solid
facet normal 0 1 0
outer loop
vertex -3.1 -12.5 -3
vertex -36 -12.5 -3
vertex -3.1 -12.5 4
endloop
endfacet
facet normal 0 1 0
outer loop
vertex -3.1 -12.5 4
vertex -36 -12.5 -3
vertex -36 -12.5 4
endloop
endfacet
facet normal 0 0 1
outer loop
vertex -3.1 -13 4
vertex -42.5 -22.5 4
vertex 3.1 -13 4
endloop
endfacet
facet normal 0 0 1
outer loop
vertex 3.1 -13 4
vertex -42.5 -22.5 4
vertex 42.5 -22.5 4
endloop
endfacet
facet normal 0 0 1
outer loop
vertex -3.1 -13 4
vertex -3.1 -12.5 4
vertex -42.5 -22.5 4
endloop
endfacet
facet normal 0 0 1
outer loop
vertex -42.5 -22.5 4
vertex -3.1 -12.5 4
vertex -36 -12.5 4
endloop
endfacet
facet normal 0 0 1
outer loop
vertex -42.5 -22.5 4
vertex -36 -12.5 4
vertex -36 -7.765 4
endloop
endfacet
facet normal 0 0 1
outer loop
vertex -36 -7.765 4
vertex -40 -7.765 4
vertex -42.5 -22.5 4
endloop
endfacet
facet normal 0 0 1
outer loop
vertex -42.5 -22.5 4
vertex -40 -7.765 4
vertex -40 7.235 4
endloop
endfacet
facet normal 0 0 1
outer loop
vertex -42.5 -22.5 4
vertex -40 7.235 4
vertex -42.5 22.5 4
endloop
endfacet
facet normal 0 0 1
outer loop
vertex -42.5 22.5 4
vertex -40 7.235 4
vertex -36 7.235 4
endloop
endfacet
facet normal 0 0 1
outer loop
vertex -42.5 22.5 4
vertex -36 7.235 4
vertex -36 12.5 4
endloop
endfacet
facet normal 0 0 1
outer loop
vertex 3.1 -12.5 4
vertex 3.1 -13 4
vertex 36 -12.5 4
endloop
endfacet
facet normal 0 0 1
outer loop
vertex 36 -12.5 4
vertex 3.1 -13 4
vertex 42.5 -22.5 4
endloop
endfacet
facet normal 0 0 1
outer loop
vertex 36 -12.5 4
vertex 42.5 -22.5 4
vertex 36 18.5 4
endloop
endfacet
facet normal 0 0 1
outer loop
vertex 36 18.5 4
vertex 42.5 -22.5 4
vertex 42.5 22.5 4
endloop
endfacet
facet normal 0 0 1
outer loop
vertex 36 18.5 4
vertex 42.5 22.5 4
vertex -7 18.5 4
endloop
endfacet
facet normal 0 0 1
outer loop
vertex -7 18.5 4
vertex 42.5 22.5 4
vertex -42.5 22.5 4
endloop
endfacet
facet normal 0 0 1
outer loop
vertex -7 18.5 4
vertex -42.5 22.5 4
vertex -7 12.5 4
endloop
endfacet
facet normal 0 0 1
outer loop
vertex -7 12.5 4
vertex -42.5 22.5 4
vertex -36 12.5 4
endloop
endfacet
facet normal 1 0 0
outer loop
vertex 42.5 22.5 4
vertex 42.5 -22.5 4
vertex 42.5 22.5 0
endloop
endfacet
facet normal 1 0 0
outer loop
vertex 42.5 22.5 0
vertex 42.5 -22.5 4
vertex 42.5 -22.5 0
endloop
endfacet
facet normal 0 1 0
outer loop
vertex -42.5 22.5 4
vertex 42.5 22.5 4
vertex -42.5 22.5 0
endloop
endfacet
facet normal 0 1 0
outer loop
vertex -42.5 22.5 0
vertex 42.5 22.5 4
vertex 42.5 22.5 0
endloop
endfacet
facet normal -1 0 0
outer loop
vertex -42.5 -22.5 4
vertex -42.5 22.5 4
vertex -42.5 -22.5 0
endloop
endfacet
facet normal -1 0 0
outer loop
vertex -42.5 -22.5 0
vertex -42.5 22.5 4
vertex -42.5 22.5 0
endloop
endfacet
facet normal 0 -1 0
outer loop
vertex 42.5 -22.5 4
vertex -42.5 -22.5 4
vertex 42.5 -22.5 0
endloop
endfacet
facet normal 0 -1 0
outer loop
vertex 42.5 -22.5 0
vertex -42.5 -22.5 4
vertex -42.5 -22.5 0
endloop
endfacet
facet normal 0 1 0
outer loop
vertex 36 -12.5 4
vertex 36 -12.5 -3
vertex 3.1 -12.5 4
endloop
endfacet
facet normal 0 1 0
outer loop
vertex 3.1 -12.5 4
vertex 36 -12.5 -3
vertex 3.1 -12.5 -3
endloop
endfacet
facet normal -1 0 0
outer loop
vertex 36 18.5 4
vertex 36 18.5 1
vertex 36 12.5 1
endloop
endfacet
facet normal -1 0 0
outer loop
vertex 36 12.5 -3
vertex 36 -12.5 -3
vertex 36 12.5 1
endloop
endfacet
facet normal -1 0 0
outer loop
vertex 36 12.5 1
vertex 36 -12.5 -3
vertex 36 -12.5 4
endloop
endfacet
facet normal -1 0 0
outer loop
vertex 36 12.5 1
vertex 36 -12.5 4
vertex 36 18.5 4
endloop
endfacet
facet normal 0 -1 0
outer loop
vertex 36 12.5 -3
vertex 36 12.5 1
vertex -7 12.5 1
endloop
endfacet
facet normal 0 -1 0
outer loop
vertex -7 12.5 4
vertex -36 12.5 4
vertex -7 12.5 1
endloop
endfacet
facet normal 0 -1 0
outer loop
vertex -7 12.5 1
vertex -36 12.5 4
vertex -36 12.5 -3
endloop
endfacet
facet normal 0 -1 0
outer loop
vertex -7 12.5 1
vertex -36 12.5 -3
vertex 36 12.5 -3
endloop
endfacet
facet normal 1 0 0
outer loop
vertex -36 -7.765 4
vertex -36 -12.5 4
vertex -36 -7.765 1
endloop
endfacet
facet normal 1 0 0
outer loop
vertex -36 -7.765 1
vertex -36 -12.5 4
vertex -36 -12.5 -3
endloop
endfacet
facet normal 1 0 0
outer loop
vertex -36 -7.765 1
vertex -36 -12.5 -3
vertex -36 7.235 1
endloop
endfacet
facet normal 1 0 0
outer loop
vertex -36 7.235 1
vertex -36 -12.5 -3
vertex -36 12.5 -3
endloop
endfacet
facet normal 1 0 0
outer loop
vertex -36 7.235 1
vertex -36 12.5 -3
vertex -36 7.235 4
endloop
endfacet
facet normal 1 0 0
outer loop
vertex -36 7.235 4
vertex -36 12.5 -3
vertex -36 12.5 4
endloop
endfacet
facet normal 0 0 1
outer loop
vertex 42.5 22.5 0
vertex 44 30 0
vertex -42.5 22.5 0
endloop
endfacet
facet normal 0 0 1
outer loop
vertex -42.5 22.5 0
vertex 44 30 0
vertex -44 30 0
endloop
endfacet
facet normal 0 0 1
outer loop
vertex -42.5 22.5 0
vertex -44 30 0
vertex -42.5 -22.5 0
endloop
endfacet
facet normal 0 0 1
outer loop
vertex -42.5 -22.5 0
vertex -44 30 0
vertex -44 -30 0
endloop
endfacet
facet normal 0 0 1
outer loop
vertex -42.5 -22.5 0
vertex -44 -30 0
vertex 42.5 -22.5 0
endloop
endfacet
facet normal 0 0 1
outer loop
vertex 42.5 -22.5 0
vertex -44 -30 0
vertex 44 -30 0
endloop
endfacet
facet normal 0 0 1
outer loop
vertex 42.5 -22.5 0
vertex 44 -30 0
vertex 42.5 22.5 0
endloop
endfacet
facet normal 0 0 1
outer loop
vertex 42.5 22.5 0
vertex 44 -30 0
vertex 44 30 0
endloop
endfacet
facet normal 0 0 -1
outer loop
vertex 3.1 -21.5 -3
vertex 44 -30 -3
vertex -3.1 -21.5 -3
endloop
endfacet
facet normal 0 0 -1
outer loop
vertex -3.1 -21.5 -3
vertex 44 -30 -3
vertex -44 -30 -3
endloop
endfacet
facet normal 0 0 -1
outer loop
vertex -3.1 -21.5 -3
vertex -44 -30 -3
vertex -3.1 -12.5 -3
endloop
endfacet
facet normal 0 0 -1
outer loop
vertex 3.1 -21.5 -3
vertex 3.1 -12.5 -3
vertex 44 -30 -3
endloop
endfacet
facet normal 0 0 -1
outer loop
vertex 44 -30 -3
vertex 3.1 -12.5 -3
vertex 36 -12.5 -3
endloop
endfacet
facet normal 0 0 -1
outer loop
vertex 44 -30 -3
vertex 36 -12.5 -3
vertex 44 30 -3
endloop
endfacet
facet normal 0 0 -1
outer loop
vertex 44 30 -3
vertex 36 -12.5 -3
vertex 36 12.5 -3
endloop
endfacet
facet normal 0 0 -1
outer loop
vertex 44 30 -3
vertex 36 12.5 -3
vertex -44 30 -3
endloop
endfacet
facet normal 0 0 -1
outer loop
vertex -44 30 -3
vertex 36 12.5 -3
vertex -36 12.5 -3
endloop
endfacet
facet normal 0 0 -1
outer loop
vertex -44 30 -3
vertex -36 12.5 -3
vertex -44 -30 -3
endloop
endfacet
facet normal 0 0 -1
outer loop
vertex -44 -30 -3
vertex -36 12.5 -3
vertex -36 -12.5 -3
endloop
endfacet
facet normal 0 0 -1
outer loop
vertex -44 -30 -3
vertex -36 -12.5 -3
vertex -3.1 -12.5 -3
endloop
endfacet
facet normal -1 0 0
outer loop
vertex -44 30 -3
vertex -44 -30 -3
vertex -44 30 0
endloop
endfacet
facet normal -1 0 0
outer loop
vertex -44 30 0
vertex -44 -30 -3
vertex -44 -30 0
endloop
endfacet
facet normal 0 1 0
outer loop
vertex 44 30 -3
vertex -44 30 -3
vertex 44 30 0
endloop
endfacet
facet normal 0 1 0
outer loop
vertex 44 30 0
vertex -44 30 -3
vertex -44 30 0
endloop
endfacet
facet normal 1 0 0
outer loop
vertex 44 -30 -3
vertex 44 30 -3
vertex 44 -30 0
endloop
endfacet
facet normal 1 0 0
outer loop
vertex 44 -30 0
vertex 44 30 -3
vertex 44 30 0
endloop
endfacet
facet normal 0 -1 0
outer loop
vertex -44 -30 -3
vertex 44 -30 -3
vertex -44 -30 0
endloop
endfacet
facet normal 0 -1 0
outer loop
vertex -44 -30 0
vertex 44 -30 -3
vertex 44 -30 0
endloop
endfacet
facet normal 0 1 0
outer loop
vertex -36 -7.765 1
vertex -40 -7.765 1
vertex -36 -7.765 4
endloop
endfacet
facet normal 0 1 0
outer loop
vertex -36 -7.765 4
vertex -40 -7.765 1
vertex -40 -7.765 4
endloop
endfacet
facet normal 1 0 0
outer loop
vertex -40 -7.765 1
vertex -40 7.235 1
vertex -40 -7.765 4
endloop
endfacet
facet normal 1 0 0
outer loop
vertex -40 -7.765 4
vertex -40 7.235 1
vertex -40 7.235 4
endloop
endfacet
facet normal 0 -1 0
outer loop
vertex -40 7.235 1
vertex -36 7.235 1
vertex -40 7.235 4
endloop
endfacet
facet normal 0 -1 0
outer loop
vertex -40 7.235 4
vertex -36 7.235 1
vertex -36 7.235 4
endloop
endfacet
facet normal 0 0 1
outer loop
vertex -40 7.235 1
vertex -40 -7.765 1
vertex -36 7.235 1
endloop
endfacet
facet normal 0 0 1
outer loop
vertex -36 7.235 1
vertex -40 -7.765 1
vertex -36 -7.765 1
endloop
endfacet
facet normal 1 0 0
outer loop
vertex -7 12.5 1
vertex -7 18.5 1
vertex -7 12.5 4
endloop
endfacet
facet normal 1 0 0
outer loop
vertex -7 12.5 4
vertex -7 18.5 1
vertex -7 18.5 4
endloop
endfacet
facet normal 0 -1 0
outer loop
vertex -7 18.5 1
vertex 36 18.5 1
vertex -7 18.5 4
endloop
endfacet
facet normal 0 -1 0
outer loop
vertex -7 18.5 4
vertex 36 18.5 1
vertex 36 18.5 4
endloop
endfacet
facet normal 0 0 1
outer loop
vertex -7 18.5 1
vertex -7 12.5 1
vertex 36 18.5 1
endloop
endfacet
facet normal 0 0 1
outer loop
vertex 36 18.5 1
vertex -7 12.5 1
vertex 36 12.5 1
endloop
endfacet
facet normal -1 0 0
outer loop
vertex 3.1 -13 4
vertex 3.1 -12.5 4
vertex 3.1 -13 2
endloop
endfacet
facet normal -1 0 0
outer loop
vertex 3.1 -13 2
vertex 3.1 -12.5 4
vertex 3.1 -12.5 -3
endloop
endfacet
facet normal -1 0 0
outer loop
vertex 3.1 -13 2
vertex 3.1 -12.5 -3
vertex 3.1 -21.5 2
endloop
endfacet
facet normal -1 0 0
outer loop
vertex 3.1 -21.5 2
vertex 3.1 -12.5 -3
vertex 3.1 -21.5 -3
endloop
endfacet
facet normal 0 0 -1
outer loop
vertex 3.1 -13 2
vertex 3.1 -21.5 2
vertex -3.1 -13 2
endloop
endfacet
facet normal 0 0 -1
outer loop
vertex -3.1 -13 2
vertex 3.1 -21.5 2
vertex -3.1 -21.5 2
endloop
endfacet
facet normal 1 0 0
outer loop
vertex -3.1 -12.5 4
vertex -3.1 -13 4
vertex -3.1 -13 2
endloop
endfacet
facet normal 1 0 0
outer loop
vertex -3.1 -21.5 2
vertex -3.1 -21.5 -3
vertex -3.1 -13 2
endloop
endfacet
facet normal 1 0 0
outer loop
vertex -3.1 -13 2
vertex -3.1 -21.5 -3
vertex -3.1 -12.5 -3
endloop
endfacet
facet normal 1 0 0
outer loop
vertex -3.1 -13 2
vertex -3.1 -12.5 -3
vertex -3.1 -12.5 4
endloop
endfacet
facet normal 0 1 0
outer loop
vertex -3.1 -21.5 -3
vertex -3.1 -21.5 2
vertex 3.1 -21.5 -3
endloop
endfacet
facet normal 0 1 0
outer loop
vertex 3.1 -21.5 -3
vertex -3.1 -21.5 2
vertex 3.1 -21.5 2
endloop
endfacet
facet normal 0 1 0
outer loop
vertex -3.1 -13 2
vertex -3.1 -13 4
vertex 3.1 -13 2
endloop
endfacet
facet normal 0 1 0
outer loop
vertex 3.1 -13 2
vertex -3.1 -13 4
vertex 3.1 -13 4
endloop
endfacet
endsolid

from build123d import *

# Parameters (mm, degrees)
SKETCH5_W           = 85
SKETCH5_H           = 45
SKETCH5_W_2         = 72
SKETCH5_H_2         = 25
BOSS_EXTRUDE3_DEPTH = 4
SKETCH10_W          = 88
SKETCH10_H          = 60
SKETCH10_W_2        = 72
SKETCH10_H_2        = 25
BOSS_EXTRUDE4_DEPTH = 3
SKETCH12_W          = 4
SKETCH12_H          = 15
CUT_EXTRUDE6_DEPTH  = 3
SKETCH13_W          = 43
SKETCH13_H          = 6
CUT_EXTRUDE7_DEPTH  = 3
SKETCH18_W          = 6.2
SKETCH18_H          = 5
CUT_EXTRUDE10_DEPTH = 9
SKETCH19_W          = 6.2
SKETCH19_H          = 0.5
CUT_EXTRUDE11_DEPTH = 10


with BuildPart() as part:
    # Sketch5 → Boss-Extrude3 (new body)
    with BuildSketch(Plane.XY):
        Rectangle(SKETCH5_W, SKETCH5_H)
        Rectangle(SKETCH5_W_2, SKETCH5_H_2, mode=Mode.SUBTRACT)
    extrude(amount=BOSS_EXTRUDE3_DEPTH)

    # Sketch10 → Boss-Extrude4 (add)
    with BuildSketch(Plane(origin=(0, 0, 0), x_dir=(-1, 0, 0), z_dir=(0, 0, -1))):
        Rectangle(SKETCH10_W, SKETCH10_H)
        Rectangle(SKETCH10_W_2, SKETCH10_H_2, mode=Mode.SUBTRACT)
    extrude(amount=BOSS_EXTRUDE4_DEPTH)

    # Sketch12 → Cut-Extrude6 (cut)
    with BuildSketch(Plane.XY.offset(4)):
        with Locations((-38, -0.264516135)):
            Rectangle(SKETCH12_W, SKETCH12_H)
    extrude(amount=-CUT_EXTRUDE6_DEPTH, mode=Mode.SUBTRACT)

    # Sketch13 → Cut-Extrude7 (cut)
    with BuildSketch(Plane.XY.offset(4)):
        with Locations((14.5, 15.5)):
            Rectangle(SKETCH13_W, SKETCH13_H)
    extrude(amount=-CUT_EXTRUDE7_DEPTH, mode=Mode.SUBTRACT)

    # Sketch18 → Cut-Extrude10 (cut)
    with BuildSketch(Plane(origin=(0, -12.5, 0), x_dir=(1, 0, 0), z_dir=(0, 1, 0))):
        with Locations((0, 0.5)):
            Rectangle(SKETCH18_W, SKETCH18_H)
    extrude(amount=-CUT_EXTRUDE10_DEPTH, mode=Mode.SUBTRACT)

    # Sketch19 → Cut-Extrude11 (cut)
    with BuildSketch(Plane(origin=(0, 0, 2), x_dir=(-1, 0, 0), z_dir=(0, 0, -1))):
        with Locations((0, -12.75)):
            Rectangle(SKETCH19_W, SKETCH19_H)
    extrude(amount=-CUT_EXTRUDE11_DEPTH, mode=Mode.SUBTRACT)


solid = part.part
